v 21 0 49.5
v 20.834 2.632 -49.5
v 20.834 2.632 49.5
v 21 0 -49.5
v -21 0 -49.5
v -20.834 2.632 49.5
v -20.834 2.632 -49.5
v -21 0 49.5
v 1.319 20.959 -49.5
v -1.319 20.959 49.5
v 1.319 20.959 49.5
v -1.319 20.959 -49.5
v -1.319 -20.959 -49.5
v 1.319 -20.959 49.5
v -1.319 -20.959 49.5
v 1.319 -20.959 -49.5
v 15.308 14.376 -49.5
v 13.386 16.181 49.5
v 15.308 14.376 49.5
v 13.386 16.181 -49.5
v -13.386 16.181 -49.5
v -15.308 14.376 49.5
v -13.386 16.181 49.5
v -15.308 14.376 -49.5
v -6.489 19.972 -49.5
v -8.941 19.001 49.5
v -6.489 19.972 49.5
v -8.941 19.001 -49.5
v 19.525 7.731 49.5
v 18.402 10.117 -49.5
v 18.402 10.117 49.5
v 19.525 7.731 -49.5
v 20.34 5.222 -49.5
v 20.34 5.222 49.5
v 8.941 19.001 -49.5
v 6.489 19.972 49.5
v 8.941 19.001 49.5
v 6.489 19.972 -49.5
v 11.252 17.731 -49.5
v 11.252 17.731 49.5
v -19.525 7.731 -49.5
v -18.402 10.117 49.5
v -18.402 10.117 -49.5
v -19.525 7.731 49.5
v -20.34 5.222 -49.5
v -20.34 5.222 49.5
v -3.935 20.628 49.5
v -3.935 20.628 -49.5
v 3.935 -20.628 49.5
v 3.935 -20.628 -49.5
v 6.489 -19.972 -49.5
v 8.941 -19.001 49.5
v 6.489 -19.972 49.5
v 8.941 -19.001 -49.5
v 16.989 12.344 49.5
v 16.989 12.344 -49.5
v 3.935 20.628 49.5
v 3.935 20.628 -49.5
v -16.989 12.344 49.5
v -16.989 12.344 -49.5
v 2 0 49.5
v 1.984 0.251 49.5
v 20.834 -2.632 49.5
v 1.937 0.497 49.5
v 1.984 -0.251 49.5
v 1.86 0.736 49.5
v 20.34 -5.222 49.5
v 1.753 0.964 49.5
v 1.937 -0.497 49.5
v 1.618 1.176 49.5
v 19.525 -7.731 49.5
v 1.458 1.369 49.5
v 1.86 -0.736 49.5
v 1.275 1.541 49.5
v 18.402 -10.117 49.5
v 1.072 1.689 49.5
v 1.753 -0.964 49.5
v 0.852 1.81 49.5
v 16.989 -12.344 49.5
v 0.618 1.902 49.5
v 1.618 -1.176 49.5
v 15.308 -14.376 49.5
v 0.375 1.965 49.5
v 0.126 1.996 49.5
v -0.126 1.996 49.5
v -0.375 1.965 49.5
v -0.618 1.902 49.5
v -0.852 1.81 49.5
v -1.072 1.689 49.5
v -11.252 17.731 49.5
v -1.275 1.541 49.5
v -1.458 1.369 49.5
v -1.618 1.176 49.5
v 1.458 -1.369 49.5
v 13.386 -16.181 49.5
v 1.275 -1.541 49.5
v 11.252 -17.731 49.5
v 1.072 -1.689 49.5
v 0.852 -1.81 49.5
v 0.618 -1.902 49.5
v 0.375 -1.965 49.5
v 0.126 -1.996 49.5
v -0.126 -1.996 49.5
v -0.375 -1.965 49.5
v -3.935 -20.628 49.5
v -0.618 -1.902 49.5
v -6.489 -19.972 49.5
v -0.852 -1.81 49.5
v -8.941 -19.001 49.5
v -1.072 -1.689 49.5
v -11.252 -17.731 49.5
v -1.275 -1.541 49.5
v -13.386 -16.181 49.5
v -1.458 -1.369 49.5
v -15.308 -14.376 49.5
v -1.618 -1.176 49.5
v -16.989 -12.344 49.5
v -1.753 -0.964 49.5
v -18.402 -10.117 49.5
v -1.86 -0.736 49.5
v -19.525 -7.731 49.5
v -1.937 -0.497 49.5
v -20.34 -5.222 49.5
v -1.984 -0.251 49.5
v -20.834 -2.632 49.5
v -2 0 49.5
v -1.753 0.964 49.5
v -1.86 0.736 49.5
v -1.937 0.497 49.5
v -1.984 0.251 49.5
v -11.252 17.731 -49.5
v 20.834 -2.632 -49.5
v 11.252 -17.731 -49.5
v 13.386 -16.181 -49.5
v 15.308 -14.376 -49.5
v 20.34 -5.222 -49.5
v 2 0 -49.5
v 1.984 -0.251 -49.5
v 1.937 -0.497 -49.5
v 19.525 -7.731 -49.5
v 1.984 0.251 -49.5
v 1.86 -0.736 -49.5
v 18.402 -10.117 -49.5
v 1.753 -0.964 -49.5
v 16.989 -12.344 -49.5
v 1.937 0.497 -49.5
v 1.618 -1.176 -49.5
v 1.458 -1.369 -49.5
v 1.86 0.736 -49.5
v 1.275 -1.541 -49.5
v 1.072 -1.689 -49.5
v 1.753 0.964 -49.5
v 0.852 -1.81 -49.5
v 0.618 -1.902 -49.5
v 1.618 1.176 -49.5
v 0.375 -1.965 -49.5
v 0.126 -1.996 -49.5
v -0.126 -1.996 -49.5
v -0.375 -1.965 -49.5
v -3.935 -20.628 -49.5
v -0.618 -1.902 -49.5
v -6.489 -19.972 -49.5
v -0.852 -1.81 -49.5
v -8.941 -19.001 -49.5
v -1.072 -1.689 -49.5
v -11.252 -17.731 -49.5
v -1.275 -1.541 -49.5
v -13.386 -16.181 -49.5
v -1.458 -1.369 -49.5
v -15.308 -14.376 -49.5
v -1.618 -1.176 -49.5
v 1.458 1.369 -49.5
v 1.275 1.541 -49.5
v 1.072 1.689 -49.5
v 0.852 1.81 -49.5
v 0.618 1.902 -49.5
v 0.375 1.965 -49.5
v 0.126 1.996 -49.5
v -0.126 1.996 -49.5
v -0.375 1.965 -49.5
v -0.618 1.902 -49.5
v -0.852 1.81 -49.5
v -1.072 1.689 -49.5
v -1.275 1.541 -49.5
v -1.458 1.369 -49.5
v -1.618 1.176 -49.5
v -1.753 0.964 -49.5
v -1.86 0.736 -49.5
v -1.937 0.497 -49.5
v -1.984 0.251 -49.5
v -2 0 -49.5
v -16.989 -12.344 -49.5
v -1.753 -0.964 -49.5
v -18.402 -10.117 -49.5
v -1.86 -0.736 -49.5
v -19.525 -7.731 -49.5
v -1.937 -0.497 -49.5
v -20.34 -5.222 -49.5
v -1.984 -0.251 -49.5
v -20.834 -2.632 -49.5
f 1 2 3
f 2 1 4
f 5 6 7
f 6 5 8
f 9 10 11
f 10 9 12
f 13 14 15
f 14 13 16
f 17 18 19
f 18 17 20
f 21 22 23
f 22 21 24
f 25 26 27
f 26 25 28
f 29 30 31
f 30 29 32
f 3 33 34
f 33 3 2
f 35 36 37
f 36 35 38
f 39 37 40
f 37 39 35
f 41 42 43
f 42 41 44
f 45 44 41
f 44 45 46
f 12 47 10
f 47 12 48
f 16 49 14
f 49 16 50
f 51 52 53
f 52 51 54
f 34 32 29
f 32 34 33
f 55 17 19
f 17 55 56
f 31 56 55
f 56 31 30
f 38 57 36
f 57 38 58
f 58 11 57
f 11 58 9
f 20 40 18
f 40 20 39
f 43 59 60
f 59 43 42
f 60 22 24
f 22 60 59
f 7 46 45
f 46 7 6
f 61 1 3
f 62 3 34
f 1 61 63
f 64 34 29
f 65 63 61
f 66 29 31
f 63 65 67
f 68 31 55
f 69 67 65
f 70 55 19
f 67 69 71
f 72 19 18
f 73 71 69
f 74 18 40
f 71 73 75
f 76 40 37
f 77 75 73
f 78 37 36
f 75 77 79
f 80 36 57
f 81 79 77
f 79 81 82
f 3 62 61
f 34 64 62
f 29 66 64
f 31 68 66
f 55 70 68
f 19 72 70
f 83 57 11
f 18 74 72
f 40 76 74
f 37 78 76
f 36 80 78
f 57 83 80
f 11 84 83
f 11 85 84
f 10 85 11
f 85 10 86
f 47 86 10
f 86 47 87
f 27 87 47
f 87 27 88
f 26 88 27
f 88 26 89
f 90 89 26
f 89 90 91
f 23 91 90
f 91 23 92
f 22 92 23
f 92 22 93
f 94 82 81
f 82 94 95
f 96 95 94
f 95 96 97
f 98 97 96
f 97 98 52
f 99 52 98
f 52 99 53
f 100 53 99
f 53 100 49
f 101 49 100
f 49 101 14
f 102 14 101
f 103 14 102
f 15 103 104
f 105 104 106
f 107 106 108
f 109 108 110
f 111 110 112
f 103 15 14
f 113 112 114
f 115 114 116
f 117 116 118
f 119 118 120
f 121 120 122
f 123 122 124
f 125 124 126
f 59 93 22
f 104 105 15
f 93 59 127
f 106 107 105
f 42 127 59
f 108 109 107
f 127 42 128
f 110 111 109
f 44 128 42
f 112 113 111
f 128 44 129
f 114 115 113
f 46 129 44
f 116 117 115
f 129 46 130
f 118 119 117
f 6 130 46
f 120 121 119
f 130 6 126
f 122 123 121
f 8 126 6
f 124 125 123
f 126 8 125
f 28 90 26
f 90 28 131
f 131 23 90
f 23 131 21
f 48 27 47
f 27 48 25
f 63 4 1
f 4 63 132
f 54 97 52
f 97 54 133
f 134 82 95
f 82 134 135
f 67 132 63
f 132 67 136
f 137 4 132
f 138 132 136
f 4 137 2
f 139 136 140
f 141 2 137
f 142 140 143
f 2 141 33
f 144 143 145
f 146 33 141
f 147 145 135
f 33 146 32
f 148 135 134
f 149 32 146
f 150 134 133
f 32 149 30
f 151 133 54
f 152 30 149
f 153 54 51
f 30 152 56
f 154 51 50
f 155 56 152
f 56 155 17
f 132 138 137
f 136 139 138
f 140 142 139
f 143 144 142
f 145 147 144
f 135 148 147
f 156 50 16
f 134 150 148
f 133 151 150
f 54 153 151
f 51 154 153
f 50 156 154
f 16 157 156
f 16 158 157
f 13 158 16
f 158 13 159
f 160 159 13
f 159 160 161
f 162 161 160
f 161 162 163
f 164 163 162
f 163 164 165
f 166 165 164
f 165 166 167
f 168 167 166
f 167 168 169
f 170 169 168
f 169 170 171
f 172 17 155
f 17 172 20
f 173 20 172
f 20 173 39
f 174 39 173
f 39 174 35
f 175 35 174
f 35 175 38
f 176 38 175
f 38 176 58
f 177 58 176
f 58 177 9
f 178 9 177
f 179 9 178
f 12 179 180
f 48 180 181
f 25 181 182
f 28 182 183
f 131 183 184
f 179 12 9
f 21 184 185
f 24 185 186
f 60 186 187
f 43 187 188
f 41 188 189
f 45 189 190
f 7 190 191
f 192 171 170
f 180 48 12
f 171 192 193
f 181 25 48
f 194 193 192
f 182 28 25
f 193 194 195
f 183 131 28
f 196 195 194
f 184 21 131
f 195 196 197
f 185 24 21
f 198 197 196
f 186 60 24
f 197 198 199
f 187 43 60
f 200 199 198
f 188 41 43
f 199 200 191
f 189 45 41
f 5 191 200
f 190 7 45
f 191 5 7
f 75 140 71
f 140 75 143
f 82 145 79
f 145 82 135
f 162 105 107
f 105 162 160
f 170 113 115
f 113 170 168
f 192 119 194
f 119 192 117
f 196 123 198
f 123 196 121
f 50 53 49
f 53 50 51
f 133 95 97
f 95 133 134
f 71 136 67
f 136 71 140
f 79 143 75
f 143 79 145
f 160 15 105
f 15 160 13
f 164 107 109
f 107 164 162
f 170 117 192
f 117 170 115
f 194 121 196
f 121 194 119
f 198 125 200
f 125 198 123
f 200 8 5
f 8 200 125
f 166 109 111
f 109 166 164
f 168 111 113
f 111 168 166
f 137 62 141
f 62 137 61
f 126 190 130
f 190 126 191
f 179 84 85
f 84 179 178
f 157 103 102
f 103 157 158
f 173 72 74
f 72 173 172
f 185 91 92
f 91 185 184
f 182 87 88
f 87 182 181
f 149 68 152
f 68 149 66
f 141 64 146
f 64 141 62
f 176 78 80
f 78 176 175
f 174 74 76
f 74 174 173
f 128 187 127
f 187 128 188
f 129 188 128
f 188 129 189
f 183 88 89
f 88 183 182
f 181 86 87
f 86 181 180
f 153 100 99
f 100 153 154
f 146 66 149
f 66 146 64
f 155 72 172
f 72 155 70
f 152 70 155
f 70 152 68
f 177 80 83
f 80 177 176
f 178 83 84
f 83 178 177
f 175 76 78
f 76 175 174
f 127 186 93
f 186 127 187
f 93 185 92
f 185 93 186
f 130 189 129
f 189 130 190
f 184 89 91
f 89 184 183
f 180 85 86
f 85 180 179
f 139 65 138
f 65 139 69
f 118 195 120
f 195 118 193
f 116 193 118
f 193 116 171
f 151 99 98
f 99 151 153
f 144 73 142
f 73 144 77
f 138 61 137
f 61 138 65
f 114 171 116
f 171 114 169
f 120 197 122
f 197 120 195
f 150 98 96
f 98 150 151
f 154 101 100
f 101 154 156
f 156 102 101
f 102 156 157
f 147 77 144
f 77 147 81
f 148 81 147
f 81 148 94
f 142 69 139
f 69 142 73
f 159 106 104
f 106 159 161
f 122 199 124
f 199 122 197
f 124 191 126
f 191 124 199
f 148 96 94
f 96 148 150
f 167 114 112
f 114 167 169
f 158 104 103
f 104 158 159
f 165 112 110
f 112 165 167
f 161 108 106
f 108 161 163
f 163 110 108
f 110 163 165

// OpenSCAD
$fn = 50;


difference() {
	union() {
		translate(v = [0, 0, -49.5000000000]) {
			cylinder(h = 99, r = 21.0000000000);
		}
	}
	union() {
		translate(v = [0, 0, -100.0000000000]) {
			cylinder(h = 200, r = 2);
		}
	}
}
